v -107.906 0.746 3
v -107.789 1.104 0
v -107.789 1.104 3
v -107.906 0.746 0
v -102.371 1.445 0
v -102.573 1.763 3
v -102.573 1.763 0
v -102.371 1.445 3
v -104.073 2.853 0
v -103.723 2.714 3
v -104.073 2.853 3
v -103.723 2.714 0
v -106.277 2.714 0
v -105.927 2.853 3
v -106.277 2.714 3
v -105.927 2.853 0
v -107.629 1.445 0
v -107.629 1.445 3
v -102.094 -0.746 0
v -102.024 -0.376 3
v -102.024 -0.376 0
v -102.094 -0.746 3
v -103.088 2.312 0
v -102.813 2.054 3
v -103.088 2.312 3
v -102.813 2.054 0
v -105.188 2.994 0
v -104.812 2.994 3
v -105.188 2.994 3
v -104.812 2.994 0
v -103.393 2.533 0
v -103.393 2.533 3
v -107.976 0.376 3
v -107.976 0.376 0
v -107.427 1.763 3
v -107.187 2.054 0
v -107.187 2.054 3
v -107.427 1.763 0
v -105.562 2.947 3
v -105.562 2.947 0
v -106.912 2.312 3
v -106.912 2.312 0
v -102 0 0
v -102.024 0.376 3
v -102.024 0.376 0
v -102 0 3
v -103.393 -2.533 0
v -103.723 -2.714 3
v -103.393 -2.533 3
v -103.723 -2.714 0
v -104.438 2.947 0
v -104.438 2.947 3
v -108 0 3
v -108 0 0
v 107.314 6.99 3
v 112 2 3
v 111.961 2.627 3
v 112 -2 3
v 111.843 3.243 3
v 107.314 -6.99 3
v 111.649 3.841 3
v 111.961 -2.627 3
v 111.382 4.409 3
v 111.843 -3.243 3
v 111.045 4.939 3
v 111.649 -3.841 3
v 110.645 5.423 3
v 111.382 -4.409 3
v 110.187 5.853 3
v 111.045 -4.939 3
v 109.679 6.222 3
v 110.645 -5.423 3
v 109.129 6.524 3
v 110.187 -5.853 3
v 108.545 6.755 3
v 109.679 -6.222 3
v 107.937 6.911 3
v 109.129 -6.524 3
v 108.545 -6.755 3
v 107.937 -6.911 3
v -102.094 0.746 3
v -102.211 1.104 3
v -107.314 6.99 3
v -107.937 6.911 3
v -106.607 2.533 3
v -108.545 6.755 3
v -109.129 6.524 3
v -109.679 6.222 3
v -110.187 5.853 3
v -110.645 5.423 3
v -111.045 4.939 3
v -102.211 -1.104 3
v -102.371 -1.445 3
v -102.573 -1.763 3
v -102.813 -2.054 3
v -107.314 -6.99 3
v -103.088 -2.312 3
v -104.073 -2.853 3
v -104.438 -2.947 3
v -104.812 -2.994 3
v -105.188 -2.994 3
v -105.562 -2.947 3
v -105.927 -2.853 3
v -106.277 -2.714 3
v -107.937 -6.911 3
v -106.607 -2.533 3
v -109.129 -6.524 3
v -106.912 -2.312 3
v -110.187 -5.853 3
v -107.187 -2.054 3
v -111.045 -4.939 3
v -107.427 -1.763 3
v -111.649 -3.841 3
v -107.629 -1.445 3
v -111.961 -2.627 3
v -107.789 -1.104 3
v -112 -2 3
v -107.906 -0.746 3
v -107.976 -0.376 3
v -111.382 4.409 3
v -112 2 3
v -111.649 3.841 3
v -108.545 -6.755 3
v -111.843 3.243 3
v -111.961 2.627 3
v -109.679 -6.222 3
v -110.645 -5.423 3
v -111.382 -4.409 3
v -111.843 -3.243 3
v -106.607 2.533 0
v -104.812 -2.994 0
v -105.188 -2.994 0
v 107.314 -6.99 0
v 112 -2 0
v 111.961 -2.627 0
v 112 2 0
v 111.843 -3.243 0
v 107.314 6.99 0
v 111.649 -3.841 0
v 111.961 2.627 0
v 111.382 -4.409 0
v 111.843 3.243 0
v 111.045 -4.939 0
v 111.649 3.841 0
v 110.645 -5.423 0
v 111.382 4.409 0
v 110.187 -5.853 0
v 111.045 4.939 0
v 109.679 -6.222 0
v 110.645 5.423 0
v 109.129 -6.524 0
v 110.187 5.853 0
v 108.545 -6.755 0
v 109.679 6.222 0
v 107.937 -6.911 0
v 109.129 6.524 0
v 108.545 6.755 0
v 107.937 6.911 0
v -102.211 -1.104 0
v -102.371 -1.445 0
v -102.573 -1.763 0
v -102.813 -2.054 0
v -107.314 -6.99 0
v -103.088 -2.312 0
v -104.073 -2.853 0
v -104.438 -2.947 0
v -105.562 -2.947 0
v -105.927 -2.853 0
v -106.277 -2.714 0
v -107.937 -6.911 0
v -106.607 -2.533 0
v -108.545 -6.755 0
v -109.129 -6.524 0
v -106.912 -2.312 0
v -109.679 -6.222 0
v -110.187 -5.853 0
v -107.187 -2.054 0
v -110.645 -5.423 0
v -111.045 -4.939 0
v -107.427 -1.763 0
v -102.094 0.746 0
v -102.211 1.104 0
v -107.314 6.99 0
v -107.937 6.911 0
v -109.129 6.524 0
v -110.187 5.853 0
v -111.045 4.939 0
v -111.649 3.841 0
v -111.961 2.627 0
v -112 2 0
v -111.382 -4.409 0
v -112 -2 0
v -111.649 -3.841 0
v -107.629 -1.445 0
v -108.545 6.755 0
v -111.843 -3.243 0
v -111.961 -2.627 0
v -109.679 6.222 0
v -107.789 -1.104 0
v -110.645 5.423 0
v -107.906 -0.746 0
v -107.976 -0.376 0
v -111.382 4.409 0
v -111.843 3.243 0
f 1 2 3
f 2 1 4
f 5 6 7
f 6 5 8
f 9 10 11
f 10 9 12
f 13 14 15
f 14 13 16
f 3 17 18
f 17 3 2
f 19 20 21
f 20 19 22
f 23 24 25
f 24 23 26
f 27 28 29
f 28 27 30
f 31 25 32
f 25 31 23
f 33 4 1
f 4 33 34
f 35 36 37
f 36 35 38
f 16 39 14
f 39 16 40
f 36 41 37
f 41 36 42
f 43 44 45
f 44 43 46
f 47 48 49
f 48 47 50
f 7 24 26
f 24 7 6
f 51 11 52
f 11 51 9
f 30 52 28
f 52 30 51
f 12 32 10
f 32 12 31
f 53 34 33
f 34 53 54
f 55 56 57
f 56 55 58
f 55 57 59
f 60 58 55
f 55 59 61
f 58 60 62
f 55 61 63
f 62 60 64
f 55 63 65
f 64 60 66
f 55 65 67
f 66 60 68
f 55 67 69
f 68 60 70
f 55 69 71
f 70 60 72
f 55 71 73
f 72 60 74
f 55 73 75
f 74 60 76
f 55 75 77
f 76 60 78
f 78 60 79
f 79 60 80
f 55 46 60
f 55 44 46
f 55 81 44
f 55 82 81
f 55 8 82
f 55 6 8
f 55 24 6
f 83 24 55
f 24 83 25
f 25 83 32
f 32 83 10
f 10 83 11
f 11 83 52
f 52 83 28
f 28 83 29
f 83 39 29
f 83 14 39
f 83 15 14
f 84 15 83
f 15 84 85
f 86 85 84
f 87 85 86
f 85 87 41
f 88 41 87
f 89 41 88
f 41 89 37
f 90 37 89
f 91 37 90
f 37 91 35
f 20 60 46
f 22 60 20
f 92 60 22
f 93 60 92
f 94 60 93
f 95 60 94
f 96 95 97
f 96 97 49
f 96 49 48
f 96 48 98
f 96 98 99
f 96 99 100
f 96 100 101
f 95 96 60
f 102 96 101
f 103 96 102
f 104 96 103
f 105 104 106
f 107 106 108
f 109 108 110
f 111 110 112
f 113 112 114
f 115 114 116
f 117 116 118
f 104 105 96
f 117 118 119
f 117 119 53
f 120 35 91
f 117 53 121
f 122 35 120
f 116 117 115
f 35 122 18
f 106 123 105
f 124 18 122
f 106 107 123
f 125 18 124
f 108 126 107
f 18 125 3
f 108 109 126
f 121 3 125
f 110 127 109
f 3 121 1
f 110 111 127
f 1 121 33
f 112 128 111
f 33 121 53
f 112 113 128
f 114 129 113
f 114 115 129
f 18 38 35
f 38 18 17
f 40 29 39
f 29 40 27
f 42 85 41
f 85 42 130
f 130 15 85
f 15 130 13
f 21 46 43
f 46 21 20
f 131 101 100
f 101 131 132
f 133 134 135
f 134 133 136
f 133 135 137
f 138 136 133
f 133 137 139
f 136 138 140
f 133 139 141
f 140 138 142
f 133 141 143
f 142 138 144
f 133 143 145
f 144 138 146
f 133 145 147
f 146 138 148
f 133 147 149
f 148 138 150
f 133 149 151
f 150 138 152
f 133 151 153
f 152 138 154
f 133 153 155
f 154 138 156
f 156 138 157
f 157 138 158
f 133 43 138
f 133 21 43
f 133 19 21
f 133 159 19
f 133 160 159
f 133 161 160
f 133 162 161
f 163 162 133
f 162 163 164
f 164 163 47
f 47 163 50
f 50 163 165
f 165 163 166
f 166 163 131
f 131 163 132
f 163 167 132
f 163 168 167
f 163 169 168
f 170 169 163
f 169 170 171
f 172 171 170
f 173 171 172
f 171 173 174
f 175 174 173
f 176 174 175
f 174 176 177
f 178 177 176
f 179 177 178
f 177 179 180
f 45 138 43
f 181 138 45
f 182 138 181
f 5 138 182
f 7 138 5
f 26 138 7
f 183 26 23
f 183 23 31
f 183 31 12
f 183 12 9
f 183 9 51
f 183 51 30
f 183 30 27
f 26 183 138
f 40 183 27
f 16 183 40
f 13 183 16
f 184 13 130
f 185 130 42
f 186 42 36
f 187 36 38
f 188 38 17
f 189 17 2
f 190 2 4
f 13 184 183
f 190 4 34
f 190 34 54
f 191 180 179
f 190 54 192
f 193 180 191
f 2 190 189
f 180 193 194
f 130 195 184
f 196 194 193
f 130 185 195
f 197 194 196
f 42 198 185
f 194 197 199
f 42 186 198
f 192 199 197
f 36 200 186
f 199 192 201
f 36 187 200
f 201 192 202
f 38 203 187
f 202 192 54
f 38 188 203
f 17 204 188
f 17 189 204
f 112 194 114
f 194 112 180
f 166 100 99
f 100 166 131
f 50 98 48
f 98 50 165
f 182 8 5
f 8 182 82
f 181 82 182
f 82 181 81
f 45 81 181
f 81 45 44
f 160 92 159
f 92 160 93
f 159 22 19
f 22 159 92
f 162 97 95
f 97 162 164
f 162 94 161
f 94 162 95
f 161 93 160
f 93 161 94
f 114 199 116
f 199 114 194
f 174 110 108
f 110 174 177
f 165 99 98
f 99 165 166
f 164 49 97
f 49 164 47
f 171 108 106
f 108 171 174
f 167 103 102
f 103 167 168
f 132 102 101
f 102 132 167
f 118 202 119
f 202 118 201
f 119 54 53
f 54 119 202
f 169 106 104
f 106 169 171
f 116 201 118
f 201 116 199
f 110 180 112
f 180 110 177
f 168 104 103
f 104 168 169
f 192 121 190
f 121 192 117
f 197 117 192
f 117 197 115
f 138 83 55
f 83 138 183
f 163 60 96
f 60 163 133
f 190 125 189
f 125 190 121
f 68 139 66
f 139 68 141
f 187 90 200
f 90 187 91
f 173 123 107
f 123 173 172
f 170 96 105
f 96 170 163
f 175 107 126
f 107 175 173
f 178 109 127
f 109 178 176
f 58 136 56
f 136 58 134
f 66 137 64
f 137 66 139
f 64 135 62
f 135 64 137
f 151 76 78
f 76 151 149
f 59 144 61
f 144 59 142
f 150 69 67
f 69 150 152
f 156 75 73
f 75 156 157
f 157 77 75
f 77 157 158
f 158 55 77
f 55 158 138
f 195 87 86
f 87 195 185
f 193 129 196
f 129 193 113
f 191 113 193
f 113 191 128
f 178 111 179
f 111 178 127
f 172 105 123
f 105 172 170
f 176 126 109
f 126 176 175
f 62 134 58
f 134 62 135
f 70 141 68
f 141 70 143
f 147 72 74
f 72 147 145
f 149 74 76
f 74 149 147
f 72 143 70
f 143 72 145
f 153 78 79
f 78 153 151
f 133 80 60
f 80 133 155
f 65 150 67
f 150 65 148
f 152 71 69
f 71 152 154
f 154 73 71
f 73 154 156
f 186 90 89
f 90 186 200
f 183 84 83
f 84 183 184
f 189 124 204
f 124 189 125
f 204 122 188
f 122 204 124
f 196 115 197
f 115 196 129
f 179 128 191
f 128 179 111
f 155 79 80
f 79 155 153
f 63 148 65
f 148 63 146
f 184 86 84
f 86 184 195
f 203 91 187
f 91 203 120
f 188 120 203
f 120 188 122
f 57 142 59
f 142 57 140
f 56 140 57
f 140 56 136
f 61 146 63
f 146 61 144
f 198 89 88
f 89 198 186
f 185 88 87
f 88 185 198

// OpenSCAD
$fn = 50;


difference() {
	union() {
		hull() {
			translate(v = [-107.0000000000, 2.0000000000, 0]) {
				cylinder(h = 3, r = 5);
			}
			translate(v = [107.0000000000, 2.0000000000, 0]) {
				cylinder(h = 3, r = 5);
			}
			translate(v = [-107.0000000000, -2.0000000000, 0]) {
				cylinder(h = 3, r = 5);
			}
			translate(v = [107.0000000000, -2.0000000000, 0]) {
				cylinder(h = 3, r = 5);
			}
		}
	}
	union() {
		translate(v = [-105.0000000000, 0.0000000000, 0]) {
			cylinder(h = 3, r = 3.0000000000);
		}
		translate(v = [-105.0000000000, 0.0000000000, 0]) {
			cylinder(h = 3, r = 1.5000000000);
		}
		translate(v = [-105.0000000000, 0.0000000000, 0]) {
			cylinder(h = 3, r = 1.5000000000);
		}
		translate(v = [-105.0000000000, 0.0000000000, 0]) {
			cylinder(h = 3, r = 1.5000000000);
		}
	}
}
